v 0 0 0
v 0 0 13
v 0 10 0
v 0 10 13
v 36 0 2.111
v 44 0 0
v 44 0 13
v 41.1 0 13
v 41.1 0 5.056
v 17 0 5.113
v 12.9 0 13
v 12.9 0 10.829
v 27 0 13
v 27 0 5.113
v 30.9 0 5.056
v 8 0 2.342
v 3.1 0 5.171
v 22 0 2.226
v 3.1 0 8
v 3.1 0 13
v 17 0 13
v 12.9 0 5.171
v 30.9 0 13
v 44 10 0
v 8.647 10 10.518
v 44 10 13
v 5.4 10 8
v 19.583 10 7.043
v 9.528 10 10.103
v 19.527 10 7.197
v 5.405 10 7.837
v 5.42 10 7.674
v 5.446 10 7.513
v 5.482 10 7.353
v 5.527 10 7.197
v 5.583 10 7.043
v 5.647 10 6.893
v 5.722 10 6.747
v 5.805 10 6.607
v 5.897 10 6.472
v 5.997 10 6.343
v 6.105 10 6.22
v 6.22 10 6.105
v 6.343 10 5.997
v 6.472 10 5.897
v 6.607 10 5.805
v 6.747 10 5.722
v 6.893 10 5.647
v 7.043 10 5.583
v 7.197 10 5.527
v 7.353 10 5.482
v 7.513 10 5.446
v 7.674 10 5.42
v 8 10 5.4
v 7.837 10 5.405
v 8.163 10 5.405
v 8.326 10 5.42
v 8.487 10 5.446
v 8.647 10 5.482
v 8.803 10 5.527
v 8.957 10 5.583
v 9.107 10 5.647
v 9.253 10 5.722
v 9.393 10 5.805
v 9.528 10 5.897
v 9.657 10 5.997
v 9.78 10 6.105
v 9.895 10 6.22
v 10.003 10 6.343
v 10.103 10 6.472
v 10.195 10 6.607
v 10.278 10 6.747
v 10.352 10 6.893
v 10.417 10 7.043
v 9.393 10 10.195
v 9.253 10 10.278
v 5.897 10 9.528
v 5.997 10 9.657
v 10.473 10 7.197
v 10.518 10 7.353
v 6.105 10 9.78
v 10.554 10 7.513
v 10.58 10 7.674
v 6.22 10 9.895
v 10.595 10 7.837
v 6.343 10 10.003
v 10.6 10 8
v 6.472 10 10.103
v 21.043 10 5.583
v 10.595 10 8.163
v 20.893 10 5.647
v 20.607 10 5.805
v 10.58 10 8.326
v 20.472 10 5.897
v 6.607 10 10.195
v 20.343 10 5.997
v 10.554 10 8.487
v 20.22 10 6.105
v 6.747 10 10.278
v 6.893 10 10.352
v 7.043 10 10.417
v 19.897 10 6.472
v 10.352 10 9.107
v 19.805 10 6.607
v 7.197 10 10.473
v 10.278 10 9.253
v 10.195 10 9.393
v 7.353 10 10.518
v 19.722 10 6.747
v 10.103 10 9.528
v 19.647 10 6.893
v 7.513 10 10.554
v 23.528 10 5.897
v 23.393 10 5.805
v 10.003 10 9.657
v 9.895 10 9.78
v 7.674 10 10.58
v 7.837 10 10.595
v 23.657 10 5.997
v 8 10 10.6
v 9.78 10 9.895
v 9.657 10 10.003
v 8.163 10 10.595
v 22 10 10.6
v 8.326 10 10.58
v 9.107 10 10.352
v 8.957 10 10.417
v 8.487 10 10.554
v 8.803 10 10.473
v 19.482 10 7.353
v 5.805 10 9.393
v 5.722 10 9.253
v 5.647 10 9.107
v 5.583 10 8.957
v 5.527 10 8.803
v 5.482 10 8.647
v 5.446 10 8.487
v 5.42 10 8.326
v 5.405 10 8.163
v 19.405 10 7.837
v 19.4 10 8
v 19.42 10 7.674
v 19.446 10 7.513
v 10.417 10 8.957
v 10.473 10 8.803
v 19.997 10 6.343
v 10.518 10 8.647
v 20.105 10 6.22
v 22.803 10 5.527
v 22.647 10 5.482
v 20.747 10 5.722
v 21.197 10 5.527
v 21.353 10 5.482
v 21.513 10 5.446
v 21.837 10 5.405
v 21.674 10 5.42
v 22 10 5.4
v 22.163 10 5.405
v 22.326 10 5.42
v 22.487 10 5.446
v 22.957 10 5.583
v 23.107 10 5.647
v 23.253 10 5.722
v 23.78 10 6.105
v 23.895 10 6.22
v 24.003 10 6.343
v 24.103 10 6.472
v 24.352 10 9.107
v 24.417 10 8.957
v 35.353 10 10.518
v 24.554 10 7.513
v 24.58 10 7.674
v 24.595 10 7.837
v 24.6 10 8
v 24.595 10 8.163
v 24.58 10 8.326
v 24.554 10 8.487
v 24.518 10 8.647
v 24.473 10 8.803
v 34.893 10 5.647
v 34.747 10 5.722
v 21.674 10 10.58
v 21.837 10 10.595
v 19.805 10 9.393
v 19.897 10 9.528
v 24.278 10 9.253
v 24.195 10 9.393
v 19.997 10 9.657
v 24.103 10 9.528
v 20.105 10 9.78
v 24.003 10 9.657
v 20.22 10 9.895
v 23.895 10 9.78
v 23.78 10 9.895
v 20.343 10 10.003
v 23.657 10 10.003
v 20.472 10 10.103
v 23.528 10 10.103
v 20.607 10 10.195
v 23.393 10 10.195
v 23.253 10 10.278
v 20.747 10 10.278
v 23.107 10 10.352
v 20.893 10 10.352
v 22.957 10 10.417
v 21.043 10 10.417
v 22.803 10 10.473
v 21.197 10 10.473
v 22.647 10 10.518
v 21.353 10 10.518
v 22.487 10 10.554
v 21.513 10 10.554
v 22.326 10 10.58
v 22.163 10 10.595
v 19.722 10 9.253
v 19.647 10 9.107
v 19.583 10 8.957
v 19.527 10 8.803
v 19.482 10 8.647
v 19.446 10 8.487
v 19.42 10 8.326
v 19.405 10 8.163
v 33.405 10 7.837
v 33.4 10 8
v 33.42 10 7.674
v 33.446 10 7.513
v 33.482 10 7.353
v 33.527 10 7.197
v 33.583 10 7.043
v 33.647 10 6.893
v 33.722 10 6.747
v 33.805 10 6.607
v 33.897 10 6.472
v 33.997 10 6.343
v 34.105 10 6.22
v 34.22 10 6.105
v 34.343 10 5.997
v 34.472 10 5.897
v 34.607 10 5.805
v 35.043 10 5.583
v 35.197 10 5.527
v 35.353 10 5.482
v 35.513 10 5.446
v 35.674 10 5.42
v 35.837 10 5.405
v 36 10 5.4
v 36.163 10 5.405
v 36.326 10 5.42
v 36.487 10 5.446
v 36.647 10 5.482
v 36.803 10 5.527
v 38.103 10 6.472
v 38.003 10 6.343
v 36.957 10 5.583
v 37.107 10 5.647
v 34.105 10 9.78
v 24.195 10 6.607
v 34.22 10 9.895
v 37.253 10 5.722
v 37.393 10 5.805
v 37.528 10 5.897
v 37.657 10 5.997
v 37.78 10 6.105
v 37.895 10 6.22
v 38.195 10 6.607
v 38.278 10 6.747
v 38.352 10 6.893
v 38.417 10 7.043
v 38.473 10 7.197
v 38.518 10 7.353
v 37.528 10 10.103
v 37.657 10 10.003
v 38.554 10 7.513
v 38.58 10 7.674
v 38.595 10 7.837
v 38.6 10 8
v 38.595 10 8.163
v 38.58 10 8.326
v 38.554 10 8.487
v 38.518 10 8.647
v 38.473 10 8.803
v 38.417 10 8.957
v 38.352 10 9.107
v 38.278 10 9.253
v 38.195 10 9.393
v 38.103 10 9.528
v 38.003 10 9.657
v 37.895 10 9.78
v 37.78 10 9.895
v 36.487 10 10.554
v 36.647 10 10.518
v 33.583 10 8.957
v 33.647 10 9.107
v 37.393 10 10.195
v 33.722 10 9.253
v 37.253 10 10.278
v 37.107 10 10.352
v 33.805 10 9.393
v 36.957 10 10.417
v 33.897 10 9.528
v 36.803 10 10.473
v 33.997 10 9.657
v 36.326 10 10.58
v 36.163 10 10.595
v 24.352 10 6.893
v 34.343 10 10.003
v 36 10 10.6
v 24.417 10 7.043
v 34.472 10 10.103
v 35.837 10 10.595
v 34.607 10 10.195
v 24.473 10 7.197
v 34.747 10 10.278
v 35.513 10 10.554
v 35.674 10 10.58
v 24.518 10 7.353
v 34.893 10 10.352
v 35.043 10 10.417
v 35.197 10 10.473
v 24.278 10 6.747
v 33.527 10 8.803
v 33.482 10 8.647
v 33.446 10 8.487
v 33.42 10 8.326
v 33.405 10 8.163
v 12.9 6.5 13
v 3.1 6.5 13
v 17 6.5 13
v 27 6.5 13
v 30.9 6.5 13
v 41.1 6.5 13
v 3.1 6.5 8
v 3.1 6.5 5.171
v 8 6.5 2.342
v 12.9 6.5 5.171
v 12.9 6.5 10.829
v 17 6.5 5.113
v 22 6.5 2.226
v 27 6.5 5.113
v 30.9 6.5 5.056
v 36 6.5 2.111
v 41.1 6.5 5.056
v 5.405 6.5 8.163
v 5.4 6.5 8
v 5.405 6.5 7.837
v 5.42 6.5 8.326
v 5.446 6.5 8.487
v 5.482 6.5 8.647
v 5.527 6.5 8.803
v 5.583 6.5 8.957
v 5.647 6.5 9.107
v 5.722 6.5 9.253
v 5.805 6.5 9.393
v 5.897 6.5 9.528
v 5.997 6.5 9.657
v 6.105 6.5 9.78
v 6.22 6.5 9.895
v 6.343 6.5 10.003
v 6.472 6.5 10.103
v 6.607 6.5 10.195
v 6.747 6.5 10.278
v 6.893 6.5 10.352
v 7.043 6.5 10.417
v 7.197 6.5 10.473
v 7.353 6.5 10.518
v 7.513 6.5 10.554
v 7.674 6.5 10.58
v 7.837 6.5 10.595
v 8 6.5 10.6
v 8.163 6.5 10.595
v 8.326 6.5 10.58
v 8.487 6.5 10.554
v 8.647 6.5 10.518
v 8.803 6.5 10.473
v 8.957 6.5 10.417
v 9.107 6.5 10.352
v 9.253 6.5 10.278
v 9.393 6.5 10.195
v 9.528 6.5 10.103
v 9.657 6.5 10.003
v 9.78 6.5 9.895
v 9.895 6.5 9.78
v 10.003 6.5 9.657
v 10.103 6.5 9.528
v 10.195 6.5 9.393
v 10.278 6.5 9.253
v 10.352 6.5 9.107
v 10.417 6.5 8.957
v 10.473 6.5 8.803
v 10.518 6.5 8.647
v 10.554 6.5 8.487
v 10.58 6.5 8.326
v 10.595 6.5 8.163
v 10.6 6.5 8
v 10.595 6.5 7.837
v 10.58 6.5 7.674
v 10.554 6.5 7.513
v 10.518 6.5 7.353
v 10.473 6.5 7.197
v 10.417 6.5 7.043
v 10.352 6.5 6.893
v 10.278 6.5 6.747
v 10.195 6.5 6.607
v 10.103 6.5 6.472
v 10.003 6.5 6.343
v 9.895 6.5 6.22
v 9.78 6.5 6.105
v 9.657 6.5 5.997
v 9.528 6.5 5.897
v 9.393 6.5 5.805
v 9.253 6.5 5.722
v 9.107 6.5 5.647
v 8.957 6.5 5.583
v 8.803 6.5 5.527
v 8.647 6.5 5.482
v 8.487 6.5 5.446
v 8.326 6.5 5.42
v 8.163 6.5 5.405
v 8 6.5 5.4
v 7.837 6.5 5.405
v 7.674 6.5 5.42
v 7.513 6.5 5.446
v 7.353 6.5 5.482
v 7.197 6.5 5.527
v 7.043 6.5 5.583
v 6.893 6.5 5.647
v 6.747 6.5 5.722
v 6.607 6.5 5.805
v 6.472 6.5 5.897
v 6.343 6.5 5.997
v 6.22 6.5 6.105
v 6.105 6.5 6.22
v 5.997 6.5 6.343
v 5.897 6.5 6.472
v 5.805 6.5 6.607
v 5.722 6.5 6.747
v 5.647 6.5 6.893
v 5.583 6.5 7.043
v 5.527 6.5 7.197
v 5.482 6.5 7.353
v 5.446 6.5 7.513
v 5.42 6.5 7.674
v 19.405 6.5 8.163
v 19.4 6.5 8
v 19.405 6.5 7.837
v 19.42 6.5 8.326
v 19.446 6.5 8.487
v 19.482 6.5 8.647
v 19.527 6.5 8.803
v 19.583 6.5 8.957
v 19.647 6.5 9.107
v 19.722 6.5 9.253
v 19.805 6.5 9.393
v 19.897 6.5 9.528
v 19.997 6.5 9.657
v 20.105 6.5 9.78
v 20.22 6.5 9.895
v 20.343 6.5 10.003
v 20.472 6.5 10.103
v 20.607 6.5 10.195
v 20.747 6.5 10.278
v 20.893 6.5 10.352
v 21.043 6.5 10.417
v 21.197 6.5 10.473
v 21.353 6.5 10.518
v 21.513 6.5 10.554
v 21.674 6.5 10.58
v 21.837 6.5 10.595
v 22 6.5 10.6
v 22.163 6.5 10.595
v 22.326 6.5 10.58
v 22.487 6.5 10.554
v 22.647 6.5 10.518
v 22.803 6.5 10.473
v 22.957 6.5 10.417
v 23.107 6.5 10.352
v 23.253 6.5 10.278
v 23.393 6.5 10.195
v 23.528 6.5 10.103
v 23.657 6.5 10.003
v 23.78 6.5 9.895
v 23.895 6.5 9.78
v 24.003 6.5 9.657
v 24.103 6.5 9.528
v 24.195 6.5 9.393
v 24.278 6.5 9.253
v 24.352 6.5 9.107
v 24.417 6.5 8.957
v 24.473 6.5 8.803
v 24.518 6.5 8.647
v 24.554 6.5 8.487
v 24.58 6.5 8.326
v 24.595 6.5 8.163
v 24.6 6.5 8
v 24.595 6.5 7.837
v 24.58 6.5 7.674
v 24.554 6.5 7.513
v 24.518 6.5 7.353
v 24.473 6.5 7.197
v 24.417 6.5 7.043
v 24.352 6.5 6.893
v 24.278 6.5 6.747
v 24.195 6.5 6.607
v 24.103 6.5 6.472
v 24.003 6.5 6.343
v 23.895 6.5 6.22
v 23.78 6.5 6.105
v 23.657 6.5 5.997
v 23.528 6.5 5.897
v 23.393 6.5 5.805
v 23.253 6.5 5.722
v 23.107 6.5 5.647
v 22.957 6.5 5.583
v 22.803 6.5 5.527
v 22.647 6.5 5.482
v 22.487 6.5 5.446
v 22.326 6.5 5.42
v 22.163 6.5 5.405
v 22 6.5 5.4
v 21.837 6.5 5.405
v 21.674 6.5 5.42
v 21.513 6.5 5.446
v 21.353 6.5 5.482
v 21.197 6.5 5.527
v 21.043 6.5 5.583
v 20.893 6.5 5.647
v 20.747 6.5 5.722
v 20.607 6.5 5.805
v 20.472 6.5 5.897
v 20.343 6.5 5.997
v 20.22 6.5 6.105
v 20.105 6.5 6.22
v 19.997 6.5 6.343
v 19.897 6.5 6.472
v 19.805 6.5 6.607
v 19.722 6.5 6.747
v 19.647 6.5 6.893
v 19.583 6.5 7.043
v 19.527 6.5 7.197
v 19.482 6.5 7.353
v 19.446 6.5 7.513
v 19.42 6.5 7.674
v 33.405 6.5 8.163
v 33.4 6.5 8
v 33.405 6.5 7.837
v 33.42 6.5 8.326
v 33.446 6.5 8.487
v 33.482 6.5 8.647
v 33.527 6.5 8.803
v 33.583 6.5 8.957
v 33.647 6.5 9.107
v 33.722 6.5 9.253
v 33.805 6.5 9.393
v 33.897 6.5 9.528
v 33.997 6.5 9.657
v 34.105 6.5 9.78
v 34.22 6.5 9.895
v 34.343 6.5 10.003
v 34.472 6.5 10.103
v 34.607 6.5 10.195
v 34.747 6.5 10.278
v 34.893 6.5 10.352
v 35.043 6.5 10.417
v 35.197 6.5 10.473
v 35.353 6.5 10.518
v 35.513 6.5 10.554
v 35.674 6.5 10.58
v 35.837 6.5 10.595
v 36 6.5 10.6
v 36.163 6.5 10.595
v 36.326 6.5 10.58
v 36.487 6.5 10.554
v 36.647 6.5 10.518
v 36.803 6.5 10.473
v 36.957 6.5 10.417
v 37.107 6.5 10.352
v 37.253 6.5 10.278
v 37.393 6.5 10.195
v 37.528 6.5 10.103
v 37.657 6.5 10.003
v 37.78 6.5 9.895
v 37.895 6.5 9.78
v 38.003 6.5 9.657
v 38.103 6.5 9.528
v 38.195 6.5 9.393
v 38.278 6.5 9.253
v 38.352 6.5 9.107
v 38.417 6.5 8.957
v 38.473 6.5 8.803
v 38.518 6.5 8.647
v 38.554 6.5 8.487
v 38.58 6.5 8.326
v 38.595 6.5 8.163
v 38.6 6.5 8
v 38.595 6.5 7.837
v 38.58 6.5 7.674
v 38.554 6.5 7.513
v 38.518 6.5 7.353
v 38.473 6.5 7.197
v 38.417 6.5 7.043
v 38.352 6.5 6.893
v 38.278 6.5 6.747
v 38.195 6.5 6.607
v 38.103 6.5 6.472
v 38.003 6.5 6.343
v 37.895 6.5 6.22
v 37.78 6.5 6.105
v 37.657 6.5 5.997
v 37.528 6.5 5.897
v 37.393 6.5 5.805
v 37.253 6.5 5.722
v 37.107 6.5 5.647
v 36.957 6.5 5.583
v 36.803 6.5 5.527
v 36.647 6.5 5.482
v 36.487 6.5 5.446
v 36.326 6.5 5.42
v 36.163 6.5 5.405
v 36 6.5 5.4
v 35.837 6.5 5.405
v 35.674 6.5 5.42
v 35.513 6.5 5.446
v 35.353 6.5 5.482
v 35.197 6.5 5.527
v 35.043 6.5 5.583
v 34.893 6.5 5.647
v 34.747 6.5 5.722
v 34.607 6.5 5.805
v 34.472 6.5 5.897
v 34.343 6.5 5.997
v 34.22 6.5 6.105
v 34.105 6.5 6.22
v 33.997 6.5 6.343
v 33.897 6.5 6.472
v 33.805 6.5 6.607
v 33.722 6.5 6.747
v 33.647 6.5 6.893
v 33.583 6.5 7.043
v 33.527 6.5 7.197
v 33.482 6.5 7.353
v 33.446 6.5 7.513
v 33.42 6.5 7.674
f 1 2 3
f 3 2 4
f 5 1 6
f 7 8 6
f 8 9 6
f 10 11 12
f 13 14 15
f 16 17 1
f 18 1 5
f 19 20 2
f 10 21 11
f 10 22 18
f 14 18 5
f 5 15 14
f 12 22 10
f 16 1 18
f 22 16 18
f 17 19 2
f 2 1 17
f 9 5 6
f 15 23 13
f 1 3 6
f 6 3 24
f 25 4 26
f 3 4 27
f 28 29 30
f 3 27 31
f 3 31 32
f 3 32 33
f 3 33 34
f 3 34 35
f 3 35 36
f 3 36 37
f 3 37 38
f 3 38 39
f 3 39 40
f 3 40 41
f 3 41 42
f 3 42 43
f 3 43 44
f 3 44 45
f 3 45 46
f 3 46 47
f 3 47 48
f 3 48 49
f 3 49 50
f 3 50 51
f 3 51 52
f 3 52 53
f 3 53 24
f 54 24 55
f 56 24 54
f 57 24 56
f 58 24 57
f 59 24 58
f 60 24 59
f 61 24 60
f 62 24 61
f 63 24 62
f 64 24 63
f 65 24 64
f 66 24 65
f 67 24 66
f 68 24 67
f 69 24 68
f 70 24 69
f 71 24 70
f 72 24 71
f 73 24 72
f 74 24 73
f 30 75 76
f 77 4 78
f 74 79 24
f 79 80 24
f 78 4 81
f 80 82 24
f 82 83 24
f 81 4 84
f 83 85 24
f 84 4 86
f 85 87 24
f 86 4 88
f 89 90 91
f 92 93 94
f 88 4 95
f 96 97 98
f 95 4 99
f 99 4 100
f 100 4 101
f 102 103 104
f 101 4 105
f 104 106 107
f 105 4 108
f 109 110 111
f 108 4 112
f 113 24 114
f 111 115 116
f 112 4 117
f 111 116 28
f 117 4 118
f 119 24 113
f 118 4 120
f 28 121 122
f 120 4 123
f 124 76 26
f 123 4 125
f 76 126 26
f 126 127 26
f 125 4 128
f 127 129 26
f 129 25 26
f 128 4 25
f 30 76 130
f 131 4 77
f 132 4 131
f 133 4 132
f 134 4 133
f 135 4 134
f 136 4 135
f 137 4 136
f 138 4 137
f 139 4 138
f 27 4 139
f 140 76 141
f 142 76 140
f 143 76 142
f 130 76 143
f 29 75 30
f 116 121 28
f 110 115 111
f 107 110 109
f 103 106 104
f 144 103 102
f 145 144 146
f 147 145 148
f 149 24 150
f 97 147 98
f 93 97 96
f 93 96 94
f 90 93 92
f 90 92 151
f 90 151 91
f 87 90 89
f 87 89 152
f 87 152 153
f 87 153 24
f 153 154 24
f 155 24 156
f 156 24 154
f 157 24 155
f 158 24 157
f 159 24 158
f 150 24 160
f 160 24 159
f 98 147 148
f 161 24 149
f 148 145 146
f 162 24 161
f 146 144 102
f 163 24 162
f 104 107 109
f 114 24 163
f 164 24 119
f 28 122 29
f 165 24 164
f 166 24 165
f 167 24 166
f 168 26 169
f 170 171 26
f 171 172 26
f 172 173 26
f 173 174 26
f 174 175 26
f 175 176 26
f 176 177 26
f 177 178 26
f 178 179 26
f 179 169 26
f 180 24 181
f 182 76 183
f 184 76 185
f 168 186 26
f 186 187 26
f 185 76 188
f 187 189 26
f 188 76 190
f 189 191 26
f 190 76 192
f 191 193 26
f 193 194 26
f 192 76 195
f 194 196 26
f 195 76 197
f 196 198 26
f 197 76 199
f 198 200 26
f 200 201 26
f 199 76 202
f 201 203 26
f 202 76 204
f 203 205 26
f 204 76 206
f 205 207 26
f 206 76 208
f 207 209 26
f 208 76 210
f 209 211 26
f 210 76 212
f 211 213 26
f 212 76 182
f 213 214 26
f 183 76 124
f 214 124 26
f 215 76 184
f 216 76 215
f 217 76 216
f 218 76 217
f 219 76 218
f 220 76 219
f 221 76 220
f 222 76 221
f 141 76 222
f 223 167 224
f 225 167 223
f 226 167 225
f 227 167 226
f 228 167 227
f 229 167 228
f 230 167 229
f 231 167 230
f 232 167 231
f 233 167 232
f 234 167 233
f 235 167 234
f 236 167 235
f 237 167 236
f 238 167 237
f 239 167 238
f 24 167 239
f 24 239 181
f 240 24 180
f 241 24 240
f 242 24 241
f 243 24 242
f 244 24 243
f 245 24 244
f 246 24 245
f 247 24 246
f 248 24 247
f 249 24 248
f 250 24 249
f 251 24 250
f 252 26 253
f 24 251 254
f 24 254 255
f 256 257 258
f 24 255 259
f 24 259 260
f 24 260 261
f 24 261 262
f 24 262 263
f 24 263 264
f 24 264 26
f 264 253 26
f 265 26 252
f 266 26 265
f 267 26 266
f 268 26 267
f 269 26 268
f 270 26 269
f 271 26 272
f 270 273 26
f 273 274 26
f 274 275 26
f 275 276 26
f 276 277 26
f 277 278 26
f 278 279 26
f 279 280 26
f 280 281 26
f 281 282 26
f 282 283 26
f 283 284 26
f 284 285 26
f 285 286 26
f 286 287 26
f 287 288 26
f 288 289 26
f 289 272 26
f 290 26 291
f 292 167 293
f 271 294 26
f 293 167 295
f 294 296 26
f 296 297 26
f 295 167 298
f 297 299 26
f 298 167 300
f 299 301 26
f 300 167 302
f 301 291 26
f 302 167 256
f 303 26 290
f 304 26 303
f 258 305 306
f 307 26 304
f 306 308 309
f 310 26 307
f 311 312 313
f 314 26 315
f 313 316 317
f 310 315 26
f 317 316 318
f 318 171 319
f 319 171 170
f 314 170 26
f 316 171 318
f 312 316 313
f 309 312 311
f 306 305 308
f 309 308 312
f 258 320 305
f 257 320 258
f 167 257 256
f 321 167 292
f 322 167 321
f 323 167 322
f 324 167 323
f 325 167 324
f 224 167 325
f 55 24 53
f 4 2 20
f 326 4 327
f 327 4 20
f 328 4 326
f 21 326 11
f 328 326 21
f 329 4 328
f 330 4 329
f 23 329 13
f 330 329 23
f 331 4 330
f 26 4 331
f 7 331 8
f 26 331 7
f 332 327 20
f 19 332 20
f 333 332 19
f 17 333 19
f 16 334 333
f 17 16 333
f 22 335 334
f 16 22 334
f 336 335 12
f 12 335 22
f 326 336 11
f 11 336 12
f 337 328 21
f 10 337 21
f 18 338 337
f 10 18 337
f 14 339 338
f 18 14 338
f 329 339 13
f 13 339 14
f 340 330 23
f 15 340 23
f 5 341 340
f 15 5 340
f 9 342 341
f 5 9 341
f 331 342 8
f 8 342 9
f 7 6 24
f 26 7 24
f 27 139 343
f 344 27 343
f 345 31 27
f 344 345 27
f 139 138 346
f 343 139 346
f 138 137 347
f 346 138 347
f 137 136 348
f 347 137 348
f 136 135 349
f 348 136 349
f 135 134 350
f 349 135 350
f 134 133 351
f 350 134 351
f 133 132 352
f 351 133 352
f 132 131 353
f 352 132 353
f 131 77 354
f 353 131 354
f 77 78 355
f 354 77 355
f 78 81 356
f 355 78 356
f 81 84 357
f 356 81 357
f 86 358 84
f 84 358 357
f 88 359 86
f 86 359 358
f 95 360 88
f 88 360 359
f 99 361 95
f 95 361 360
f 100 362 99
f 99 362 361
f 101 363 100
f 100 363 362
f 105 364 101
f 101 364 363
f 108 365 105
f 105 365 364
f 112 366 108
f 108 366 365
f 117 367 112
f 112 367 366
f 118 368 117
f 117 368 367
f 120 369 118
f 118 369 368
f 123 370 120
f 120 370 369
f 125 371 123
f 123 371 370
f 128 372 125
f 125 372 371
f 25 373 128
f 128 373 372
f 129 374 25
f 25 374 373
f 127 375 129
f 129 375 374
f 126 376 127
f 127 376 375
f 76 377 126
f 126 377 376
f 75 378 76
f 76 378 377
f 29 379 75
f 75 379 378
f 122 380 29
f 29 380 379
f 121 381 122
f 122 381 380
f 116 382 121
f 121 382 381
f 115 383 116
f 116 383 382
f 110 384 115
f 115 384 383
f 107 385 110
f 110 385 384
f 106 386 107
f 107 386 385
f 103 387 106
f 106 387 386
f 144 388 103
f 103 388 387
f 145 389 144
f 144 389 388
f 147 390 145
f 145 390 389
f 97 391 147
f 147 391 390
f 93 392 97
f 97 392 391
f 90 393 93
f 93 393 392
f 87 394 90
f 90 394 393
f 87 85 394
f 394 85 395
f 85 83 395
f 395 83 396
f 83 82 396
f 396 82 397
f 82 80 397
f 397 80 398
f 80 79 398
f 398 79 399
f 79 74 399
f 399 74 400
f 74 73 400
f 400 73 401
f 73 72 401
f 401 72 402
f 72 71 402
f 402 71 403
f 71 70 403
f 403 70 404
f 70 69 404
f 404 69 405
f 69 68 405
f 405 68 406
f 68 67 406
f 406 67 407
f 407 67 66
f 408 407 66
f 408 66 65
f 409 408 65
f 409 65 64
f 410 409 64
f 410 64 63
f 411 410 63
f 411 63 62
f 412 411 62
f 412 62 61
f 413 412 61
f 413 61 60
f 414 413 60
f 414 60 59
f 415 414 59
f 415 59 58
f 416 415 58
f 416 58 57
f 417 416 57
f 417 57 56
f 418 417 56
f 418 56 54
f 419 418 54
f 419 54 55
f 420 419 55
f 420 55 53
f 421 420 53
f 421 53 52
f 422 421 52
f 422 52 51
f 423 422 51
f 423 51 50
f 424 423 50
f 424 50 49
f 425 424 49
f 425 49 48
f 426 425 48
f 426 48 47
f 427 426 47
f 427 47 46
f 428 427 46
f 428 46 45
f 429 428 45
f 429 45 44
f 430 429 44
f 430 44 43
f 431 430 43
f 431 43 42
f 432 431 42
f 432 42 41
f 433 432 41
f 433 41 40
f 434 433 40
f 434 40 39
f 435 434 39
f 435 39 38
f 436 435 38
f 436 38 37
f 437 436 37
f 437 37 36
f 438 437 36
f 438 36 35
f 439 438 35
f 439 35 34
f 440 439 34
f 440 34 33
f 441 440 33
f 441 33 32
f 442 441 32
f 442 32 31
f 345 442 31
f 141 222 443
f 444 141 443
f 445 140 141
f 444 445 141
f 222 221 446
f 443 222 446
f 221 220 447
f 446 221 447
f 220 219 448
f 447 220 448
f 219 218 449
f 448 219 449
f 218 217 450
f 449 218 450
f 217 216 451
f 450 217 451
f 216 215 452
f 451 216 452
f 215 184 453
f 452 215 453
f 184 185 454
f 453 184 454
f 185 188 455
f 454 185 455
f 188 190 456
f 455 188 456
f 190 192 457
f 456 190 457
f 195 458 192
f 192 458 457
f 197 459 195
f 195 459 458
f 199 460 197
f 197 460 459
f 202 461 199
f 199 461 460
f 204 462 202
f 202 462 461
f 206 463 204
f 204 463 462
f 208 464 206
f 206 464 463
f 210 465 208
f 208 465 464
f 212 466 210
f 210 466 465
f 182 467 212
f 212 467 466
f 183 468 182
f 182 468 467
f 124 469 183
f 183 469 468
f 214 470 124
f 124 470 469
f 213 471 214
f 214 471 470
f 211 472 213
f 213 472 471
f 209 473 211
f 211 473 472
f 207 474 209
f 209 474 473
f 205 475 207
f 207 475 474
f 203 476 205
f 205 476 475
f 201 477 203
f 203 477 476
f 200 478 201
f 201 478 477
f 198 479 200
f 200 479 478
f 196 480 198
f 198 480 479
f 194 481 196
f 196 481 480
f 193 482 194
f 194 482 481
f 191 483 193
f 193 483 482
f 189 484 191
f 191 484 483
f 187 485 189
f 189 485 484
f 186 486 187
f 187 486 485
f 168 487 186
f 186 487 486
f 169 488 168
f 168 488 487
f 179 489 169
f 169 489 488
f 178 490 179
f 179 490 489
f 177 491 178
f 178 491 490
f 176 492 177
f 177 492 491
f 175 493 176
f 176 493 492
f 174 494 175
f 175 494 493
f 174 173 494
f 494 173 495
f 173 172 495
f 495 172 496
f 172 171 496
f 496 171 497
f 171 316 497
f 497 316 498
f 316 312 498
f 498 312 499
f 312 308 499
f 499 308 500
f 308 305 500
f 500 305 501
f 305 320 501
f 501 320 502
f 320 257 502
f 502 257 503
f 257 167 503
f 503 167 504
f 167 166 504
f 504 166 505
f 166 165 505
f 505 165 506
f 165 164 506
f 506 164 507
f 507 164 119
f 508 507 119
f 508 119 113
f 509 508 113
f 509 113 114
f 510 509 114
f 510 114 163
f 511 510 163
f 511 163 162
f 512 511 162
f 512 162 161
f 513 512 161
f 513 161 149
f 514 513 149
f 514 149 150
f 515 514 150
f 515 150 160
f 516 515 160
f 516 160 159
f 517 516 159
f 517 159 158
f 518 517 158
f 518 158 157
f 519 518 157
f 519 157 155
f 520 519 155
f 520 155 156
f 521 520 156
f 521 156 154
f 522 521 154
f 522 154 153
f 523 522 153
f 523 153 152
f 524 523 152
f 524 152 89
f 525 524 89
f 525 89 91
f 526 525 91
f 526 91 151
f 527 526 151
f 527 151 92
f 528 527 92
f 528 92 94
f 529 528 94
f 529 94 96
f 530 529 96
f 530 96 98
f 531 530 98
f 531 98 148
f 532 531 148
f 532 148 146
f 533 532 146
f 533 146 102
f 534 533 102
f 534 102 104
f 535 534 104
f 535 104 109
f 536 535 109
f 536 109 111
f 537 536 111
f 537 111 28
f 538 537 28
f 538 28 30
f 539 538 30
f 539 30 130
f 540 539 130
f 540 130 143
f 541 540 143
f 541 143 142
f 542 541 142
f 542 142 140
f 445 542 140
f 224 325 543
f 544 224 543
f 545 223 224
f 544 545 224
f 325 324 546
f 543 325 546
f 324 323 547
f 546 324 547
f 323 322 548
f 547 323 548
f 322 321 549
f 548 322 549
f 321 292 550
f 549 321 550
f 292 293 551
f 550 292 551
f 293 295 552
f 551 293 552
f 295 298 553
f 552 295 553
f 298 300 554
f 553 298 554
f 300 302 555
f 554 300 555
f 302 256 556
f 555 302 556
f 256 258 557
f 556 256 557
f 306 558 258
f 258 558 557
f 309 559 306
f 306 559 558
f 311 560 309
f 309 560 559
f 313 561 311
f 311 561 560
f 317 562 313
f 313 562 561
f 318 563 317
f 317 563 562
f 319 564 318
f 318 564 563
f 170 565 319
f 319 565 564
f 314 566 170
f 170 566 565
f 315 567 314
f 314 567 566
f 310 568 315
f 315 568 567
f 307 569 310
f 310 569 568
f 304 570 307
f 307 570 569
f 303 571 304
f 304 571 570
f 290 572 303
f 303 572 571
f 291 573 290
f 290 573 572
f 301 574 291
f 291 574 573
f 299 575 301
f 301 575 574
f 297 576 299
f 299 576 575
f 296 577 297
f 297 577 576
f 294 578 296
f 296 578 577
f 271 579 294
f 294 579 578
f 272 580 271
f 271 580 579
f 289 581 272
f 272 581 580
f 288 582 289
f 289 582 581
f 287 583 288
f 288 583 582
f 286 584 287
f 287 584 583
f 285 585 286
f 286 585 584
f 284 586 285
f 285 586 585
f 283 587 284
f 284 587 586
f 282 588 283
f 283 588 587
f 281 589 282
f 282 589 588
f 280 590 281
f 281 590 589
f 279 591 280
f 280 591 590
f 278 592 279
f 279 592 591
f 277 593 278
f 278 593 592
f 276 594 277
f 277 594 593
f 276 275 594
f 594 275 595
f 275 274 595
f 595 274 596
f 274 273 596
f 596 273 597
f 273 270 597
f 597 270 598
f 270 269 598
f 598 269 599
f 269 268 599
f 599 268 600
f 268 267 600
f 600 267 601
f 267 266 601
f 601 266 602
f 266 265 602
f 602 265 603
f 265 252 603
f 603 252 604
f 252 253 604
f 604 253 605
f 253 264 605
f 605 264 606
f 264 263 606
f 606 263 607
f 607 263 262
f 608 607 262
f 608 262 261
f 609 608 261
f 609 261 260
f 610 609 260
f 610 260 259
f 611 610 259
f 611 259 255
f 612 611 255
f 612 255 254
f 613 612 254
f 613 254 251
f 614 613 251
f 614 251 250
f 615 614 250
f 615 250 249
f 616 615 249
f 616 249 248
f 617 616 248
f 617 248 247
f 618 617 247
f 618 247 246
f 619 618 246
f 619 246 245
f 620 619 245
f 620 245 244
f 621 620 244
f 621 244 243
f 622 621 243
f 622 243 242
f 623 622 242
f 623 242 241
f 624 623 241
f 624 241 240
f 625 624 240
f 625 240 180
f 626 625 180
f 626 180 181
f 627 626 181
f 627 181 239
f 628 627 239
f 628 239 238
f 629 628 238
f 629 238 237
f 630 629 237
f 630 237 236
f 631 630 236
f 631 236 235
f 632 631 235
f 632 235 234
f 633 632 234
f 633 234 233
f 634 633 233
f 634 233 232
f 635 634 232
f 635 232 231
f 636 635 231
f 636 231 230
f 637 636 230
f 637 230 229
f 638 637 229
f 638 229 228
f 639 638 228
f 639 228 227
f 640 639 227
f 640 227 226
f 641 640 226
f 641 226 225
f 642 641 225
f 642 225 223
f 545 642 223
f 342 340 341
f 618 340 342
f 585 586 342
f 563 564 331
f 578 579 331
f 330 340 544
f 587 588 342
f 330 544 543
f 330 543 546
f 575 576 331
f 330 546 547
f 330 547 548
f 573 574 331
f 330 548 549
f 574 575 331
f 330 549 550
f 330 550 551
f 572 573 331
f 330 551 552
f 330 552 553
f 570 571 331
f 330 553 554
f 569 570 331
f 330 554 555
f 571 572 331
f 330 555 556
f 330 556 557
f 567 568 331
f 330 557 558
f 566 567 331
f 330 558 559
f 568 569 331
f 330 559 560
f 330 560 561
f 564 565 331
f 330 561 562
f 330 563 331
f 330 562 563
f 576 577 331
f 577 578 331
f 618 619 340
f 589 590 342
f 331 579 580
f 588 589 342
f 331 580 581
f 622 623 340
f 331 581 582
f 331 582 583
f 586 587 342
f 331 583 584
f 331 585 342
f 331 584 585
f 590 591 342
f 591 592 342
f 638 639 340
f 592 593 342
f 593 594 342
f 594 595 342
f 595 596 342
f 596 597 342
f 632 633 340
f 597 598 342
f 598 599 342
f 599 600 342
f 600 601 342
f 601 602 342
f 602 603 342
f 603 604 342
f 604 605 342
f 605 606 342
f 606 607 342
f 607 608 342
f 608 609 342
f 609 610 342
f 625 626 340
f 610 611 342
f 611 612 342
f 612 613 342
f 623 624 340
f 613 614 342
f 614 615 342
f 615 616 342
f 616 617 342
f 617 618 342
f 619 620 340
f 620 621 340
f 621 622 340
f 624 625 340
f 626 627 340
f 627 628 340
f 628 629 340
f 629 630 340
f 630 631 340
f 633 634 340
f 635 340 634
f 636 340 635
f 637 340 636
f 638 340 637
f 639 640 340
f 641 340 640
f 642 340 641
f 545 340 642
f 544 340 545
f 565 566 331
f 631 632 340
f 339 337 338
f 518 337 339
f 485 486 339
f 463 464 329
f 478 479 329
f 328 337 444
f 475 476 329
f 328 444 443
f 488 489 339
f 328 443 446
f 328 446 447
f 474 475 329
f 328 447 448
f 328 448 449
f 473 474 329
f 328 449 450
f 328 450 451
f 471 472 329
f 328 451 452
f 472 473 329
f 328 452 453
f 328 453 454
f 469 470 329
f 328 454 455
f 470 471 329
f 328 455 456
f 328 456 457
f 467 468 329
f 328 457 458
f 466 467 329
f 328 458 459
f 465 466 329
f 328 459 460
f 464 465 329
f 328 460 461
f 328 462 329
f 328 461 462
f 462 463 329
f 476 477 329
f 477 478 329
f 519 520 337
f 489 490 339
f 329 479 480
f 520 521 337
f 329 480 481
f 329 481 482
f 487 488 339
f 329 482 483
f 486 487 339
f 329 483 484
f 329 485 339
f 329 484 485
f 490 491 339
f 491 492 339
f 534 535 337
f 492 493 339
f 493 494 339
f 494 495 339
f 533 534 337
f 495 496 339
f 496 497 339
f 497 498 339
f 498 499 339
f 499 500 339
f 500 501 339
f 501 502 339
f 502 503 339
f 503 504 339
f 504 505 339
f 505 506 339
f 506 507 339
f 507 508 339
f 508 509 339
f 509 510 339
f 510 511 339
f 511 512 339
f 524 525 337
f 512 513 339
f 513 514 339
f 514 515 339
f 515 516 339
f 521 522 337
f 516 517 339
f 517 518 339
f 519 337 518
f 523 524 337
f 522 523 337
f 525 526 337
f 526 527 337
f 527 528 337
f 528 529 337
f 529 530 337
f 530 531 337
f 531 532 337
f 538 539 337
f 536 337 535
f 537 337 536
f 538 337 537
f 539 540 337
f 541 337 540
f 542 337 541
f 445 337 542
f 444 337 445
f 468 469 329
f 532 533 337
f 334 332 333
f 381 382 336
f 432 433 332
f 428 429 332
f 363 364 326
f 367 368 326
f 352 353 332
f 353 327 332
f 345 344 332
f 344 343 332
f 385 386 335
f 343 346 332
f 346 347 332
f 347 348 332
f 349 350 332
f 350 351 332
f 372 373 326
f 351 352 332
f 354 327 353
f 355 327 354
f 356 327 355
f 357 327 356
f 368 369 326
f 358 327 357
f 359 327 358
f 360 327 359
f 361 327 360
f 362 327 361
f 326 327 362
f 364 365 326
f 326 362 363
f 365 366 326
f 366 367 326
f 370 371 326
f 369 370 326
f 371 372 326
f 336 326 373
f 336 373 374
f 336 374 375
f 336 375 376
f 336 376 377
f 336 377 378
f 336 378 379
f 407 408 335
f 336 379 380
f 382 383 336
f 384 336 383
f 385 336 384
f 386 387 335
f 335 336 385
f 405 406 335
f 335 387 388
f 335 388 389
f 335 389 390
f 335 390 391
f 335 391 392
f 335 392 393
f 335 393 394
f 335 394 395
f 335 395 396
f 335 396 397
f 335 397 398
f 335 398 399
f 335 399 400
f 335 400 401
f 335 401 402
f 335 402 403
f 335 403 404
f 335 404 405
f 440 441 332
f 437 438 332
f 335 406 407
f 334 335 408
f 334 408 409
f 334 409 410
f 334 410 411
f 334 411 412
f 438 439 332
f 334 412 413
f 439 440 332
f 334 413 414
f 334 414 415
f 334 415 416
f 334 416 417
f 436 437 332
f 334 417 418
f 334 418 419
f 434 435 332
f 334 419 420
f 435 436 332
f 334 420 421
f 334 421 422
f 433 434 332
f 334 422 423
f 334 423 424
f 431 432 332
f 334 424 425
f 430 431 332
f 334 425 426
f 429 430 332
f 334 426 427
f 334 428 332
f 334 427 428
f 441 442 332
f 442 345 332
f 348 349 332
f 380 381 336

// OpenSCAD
$fn = 100;


//screwWithNut(nr=4, nd=2, s=11, sd=3, sr=2.6, wp=20);

difference() {
	cube([44, 10, 13]);
	rotate(a=[90, 0, 0]) translate([8, 8, -10]) screwWithNut(nr=4.9, nd=7.5, s=3.5, sd=0, wp=10);
	rotate(a=[90, 0, 0]) translate([22, 8, -10]) screwWithNut(nr=5, nd=7.5, s=3.5, sd=0, wp=10);
	rotate(a=[90, 0, 0]) translate([36, 8, -10]) screwWithNut(nr=5.1, nd=7.5, s=3.5, sd=0, wp=10);
}


// -------------------------------
// own modules
// -------------------------------




// screwWithNut - draws a screw with nut. the object is placed
//                in z-direction centered at the origin
// 
// nr: radius of the nut
// nd: nut depth
// s:  space between nut and screen head
// sd: srew depth
// sr: screwRadius
// wp: with projection
// 
module screwWithNut(nr=5, nd=6.5, s=4, sd=6.5, sr=2.6, wp=0) {
	union() {
		translate([0, 0, sd/2]) hexagon(length = nr, depth = sd);
		translate([0, 0, sd]) cylinder(h=s, r=sr);
		translate([0, 0, s + nd/2 + sd]) hexagon(length = nr, depth = nd);
		if (wp > 0) {
			translate([-nr, 0, 0]) cube([2*nr, wp, sd]);
			translate([-nr, 0, s + sd]) cube([2*nr, wp, nd]);
		}
	}
}








// -------------------------------
// 3rd party stuff
// -------------------------------




/*----------------------------------------------------------------------------*
* Defines common constants used throughout the AutoSCAD libraries.
*-----------------------------------------------------------------------------*
*----------------------------------------------------------------------------*/

//--- Constants

/** The value of Pi
 */
PI = 3.1415926535897932;

/** Printer resolution (in mm)
 */
RESOLUTION = 0.3;

/** Base size for objects (in mm)
 *
 * The library is designed to generate things in 'units' - this defines the
 * size of a unit (in mm).
 */
BASE_SIZE = 2;

//--- Modules

/** Create an isosceles triangle
 *
 * The middle of the base is at origin (0, 0, 0) and the tip of the triangle
 * points along the Y axis. Depth is in the Z axis and is centered on the
 * origin. If depth is not specified it defaults to 2 units.
 */
module triangle(width, height, depth = 2) {
  angle = atan(height / (width / 2));
  difference() {
    translate(v = [ 0, height / 2, 0 ]) {
      cube(size = [ width, height, depth ], center = true);
      }
    translate(v = [ width / 2, 0, 0 ]) {
      rotate(a = [ 0, 0, 90 - angle ]) {
        translate(v = [ width / 2, height, 0 ]) {
          cube(size = [ width, height * 2, depth * 2 ], center = true);
          }
        }
      }
    translate(v = [ -width / 2, 0, 0 ]) {
      rotate(a = [ 0, 0, 270 + angle ]) {
        translate(v = [ -width / 2, height, 0 ]) {
          cube(size = [ width, height * 2, depth * 2 ], center = true);
          }
        }
      }
    }
  }

/** Create an arc
 *
 * Creates a slice of a cylinder that is 'width' along the X axis, 'height'
 * along the Y axis and 'depth' along the Z axis. The base (the flat part)
 * is centered on the origin. If 'depth' is not specified it defaults to
 * 2 units.
 */
module arc(width, height, depth = 2) {
  radius = ((width * width) + (4 * height * height)) / (8 * height);
  difference() {
    translate(v = [ 0, -(radius - height), 0 ]) {
      cylinder(h = depth, r = radius, center = true, $fs = RESOLUTION);
      }
    translate(v = [ 0, -radius, 0 ]) {
      cube(size = [ radius * 2, radius * 2, depth * 2 ], center = true);
      }
    }
  }

/** Calculates the height of a teardrop with a given radius
 */
function teardrop_length(td_radius) = td_radius + sqrt(2 * (td_radius * td_radius));

/** Generate a teardrop shape
 *
 * These shapes are useful for minimising print volume while maintaining
 * structural strength.
 */
module teardrop(td_radius, td_height = 1) {
  translate(v = [ 0, -(teardrop_length(td_radius) - td_radius), 0 ]) {
    rotate(a = [ 0, 0, 45 ]) {
      linear_extrude(height = td_height) {
        union() {
          circle(r = td_radius, $fs = RESOLUTION);
          square(size = [ td_radius, td_radius ]);
          }
        }
      }
    }
  }

/** Variation of the teardrop with a specified length
 *
 * This module allows you to specify the length of the teardrop shape as well
 * as the radius.
 */
module teardrop_scaled(td_radius, td_length, td_height = 1) {
  scale_factor = td_length / teardrop_length(td_radius);
  scale(v = [ 1, scale_factor, 1 ]) {
    teardrop(td_radius, td_height);
    }
  }

/** Create a hexagon.
 *
 * The 'size' parameter specifies the distance from the center of the
 * hexagon to the center of one of the six straight edges. The 'depth'
 * parameter specifies the size in the Z axis. The resulting object
 * is centered on the origin.
 */
module hexagon(length, depth = 2) {
  width = 2 * length * tan(30);
  union() {
    cube(size = [ length * 2, width, depth ], center = true);
    rotate(a = [ 0, 0, 60 ]) {
      cube(size = [ length * 2, width, depth ], center = true);
      }
    rotate(a = [ 0, 0, -60 ]) {
      cube(size = [ length * 2, width, depth ], center = true);
      }
    }
  }

/** Create a hexagon
 *
 * The 'radius' parameter specifies the radius of the smallest circle
 * that contains the hexagon. The 'depth' parameter specifies the size
 * in the Z axis. The resulting object is centered on the origin.
 */
module hexagonR(radius, depth = 2) {
  hexagon(radius * cos(30), depth);
  }

/** Create a hexagon
 *
 * This version of the hexagon module creates a hexagon where each
 * edge is of 'part' length. The 'depth' parameter specifies the
 * size in the Z axis. The resulting object is centered on the
 * origin.
 */
module hexagonL(part, depth = 2) {
  hexagon((part / 2) / tan(30), depth);
  }

/** Create a rounded rectangle
 */
module roundrect(width, height, depth, radius) {
  union() {
     // Make the four corner pieces
     translate(v = [ width / 2 - radius, height / 2 - radius, 0 ]) {
       cylinder(r = radius, h = depth, center = true);
       }
     translate(v = [ width / 2 - radius, -(height / 2 - radius), 0 ]) {
       cylinder(r = radius, h = depth, center = true);
       }
     translate(v = [ -(width / 2 - radius), height / 2 - radius, 0 ]) {
       cylinder(r = radius, h = depth, center = true);
       }
     translate(v = [ -(width / 2 - radius), -(height / 2 - radius), 0 ]) {
       cylinder(r = radius, h = depth, center = true);
       }
    // Add the center rectangles
    cube(size = [ width - (2 * radius), height, depth ], center = true);
    cube(size = [ width, height - (2 * radius), depth ], center = true);
    }
  }
